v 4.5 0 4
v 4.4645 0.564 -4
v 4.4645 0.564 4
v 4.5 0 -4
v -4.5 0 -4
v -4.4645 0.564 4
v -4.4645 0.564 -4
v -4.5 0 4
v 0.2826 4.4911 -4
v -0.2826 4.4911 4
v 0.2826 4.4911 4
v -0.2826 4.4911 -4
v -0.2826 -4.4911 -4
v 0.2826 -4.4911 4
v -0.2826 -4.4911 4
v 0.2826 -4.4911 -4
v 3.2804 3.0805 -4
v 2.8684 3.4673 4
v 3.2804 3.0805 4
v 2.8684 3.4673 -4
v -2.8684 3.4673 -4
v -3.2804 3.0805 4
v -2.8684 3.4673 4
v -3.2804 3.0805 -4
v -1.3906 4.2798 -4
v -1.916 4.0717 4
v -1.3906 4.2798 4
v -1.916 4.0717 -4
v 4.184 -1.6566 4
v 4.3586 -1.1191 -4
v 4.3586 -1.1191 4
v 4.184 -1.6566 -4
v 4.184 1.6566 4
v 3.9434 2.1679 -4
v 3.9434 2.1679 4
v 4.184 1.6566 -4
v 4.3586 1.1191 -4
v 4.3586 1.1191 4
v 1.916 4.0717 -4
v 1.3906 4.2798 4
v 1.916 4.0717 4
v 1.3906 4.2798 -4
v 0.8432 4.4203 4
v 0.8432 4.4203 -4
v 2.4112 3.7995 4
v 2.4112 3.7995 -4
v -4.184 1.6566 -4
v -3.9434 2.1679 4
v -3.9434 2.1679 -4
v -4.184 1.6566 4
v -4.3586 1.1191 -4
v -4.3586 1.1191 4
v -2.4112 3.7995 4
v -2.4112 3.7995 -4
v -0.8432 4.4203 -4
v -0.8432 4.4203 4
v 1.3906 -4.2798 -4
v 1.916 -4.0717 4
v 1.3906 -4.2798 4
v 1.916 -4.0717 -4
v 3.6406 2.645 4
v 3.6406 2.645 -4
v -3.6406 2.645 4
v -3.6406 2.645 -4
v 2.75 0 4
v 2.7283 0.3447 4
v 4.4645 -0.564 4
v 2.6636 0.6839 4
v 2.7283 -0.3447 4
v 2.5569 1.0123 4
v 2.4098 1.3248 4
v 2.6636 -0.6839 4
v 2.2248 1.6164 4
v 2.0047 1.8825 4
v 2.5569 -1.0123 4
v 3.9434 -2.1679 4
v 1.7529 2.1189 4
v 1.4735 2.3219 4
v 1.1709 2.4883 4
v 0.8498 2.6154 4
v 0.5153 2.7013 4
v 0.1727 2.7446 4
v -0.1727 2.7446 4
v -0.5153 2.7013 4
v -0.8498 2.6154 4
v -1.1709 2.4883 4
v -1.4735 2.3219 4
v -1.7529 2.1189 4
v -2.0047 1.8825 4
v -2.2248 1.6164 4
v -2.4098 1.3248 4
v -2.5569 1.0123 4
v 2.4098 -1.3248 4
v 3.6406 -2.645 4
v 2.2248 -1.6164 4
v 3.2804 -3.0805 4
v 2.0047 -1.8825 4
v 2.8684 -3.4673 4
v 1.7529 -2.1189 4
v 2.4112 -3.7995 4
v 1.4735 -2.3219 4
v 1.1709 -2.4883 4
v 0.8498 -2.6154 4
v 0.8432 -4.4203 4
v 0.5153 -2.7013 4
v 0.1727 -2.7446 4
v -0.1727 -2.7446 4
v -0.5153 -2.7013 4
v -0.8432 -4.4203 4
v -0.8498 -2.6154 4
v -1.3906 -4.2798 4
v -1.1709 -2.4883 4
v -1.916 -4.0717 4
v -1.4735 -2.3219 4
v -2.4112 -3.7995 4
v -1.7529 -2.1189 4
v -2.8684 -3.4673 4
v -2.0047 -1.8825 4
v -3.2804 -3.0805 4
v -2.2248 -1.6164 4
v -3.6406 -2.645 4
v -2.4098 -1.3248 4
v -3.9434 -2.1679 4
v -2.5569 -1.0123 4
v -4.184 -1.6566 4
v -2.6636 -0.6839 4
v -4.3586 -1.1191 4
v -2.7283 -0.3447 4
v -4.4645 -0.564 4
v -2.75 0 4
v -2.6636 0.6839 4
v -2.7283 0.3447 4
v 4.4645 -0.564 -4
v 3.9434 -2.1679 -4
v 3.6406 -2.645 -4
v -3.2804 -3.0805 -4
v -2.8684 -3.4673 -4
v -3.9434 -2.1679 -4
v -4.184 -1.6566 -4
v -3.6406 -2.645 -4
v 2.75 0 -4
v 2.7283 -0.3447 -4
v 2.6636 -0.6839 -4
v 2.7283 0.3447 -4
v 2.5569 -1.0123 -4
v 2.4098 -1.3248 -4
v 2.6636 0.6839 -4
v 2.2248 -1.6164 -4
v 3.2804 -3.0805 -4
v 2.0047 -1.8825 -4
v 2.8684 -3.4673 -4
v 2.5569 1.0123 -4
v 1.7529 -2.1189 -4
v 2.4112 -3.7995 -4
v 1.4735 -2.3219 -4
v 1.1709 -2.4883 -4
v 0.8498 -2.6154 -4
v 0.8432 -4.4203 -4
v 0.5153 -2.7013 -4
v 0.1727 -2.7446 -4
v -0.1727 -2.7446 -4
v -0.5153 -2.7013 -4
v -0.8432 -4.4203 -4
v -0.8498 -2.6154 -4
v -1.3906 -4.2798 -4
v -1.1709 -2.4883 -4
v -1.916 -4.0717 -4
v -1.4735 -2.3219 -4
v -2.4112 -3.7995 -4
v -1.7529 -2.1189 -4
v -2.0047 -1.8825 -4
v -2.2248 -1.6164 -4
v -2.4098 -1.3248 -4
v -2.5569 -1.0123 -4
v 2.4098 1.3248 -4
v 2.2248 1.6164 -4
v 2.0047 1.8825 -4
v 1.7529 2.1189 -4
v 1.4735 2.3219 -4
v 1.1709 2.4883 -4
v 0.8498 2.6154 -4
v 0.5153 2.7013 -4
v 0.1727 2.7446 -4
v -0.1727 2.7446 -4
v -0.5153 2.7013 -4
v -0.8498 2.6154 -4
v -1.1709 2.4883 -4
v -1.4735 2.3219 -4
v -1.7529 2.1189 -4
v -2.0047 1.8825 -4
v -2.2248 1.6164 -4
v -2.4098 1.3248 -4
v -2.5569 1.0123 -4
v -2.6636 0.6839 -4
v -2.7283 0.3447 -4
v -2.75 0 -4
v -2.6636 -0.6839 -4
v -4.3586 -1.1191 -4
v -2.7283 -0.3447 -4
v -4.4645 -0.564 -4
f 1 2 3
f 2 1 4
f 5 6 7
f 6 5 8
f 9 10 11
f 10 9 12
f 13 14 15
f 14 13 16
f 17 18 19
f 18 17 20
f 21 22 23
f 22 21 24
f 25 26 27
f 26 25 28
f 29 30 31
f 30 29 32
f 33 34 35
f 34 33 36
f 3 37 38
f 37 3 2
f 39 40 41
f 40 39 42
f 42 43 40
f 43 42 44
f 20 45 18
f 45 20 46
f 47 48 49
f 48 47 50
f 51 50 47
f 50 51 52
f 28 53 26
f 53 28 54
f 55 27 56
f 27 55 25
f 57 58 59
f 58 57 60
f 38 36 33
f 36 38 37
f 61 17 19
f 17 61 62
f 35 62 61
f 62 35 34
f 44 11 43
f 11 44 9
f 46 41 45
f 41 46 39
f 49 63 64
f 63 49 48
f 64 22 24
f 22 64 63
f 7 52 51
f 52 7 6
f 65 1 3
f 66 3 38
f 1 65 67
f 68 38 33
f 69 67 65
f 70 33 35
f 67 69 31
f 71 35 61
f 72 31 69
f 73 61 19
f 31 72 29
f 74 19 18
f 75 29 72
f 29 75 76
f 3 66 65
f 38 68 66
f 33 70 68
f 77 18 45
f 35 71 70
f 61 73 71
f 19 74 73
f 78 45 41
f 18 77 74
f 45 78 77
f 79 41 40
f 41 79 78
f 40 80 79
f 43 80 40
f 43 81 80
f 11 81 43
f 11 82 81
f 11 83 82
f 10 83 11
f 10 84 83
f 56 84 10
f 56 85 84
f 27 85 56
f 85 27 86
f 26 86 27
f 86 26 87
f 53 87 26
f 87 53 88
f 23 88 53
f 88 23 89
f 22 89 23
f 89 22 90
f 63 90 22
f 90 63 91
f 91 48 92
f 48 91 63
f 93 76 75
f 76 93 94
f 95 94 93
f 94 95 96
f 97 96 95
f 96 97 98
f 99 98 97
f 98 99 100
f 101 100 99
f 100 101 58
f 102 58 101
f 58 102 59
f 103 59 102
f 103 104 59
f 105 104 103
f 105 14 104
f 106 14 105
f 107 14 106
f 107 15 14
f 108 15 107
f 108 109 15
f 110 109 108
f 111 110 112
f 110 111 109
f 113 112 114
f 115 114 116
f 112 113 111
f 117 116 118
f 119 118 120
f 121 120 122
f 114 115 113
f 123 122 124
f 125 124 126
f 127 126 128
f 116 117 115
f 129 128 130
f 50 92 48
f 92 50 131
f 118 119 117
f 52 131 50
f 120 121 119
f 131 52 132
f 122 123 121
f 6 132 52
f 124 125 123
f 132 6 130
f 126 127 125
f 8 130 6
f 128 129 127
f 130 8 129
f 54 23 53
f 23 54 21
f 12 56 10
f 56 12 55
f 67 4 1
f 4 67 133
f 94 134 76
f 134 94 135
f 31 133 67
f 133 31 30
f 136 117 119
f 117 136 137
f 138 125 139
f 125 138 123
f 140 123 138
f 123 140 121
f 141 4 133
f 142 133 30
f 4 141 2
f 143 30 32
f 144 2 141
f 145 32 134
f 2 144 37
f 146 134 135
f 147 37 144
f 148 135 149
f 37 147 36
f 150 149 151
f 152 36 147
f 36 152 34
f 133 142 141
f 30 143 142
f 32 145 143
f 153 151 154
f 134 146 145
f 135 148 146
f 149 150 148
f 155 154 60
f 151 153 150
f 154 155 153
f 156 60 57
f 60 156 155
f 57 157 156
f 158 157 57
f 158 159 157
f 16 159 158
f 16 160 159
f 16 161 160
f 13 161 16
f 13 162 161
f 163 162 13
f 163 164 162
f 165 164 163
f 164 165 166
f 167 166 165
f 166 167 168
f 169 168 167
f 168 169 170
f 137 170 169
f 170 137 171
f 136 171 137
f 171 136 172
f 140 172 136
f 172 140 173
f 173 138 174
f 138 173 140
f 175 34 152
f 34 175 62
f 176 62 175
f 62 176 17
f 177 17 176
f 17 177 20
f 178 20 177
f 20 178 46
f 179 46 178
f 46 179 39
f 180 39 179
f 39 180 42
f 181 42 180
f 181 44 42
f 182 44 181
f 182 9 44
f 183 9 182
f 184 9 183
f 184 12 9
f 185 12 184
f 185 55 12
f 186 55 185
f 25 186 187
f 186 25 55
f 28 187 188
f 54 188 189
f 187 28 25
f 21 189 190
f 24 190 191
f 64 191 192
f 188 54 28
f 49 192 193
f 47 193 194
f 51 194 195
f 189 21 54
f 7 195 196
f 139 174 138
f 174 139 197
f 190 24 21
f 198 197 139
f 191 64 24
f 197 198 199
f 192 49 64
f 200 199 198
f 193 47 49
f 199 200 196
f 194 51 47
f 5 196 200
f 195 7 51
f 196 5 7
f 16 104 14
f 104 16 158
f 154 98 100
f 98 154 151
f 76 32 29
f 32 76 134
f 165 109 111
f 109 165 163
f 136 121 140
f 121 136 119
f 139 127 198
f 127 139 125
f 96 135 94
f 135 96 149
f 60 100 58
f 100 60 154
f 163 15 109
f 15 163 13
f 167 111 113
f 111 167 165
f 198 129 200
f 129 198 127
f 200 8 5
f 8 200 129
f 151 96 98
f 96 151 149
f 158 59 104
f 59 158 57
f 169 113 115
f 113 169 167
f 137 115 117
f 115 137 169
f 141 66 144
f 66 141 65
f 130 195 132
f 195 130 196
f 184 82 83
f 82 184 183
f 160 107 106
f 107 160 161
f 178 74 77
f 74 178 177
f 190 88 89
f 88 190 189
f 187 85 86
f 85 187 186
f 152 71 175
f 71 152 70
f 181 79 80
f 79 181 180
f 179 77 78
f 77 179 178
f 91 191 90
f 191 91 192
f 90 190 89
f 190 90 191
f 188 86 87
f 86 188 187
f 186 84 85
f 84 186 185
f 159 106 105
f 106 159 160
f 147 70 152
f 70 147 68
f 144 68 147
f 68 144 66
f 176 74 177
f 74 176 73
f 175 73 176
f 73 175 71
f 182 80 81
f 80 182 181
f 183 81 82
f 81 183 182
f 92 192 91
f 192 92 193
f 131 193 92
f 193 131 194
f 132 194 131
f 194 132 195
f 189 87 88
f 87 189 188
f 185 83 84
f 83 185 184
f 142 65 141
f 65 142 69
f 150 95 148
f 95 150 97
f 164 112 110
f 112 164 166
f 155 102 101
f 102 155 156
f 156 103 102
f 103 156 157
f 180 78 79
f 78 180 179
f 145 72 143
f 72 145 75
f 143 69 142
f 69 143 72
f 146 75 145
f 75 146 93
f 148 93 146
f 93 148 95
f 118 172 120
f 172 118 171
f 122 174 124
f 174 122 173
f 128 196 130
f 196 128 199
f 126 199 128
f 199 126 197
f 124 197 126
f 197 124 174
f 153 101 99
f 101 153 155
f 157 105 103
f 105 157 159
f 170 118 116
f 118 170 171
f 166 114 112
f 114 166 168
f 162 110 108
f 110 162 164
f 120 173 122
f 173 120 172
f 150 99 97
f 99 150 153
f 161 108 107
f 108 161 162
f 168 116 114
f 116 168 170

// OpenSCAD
$fn = 50;


difference() {
	union() {
		translate(v = [0, 0, -4.0000000000]) {
			cylinder(h = 8, r = 4.5000000000);
		}
	}
	union() {
		translate(v = [0, 0, -100.0000000000]) {
			cylinder(h = 200, r = 2.7500000000);
		}
	}
}
